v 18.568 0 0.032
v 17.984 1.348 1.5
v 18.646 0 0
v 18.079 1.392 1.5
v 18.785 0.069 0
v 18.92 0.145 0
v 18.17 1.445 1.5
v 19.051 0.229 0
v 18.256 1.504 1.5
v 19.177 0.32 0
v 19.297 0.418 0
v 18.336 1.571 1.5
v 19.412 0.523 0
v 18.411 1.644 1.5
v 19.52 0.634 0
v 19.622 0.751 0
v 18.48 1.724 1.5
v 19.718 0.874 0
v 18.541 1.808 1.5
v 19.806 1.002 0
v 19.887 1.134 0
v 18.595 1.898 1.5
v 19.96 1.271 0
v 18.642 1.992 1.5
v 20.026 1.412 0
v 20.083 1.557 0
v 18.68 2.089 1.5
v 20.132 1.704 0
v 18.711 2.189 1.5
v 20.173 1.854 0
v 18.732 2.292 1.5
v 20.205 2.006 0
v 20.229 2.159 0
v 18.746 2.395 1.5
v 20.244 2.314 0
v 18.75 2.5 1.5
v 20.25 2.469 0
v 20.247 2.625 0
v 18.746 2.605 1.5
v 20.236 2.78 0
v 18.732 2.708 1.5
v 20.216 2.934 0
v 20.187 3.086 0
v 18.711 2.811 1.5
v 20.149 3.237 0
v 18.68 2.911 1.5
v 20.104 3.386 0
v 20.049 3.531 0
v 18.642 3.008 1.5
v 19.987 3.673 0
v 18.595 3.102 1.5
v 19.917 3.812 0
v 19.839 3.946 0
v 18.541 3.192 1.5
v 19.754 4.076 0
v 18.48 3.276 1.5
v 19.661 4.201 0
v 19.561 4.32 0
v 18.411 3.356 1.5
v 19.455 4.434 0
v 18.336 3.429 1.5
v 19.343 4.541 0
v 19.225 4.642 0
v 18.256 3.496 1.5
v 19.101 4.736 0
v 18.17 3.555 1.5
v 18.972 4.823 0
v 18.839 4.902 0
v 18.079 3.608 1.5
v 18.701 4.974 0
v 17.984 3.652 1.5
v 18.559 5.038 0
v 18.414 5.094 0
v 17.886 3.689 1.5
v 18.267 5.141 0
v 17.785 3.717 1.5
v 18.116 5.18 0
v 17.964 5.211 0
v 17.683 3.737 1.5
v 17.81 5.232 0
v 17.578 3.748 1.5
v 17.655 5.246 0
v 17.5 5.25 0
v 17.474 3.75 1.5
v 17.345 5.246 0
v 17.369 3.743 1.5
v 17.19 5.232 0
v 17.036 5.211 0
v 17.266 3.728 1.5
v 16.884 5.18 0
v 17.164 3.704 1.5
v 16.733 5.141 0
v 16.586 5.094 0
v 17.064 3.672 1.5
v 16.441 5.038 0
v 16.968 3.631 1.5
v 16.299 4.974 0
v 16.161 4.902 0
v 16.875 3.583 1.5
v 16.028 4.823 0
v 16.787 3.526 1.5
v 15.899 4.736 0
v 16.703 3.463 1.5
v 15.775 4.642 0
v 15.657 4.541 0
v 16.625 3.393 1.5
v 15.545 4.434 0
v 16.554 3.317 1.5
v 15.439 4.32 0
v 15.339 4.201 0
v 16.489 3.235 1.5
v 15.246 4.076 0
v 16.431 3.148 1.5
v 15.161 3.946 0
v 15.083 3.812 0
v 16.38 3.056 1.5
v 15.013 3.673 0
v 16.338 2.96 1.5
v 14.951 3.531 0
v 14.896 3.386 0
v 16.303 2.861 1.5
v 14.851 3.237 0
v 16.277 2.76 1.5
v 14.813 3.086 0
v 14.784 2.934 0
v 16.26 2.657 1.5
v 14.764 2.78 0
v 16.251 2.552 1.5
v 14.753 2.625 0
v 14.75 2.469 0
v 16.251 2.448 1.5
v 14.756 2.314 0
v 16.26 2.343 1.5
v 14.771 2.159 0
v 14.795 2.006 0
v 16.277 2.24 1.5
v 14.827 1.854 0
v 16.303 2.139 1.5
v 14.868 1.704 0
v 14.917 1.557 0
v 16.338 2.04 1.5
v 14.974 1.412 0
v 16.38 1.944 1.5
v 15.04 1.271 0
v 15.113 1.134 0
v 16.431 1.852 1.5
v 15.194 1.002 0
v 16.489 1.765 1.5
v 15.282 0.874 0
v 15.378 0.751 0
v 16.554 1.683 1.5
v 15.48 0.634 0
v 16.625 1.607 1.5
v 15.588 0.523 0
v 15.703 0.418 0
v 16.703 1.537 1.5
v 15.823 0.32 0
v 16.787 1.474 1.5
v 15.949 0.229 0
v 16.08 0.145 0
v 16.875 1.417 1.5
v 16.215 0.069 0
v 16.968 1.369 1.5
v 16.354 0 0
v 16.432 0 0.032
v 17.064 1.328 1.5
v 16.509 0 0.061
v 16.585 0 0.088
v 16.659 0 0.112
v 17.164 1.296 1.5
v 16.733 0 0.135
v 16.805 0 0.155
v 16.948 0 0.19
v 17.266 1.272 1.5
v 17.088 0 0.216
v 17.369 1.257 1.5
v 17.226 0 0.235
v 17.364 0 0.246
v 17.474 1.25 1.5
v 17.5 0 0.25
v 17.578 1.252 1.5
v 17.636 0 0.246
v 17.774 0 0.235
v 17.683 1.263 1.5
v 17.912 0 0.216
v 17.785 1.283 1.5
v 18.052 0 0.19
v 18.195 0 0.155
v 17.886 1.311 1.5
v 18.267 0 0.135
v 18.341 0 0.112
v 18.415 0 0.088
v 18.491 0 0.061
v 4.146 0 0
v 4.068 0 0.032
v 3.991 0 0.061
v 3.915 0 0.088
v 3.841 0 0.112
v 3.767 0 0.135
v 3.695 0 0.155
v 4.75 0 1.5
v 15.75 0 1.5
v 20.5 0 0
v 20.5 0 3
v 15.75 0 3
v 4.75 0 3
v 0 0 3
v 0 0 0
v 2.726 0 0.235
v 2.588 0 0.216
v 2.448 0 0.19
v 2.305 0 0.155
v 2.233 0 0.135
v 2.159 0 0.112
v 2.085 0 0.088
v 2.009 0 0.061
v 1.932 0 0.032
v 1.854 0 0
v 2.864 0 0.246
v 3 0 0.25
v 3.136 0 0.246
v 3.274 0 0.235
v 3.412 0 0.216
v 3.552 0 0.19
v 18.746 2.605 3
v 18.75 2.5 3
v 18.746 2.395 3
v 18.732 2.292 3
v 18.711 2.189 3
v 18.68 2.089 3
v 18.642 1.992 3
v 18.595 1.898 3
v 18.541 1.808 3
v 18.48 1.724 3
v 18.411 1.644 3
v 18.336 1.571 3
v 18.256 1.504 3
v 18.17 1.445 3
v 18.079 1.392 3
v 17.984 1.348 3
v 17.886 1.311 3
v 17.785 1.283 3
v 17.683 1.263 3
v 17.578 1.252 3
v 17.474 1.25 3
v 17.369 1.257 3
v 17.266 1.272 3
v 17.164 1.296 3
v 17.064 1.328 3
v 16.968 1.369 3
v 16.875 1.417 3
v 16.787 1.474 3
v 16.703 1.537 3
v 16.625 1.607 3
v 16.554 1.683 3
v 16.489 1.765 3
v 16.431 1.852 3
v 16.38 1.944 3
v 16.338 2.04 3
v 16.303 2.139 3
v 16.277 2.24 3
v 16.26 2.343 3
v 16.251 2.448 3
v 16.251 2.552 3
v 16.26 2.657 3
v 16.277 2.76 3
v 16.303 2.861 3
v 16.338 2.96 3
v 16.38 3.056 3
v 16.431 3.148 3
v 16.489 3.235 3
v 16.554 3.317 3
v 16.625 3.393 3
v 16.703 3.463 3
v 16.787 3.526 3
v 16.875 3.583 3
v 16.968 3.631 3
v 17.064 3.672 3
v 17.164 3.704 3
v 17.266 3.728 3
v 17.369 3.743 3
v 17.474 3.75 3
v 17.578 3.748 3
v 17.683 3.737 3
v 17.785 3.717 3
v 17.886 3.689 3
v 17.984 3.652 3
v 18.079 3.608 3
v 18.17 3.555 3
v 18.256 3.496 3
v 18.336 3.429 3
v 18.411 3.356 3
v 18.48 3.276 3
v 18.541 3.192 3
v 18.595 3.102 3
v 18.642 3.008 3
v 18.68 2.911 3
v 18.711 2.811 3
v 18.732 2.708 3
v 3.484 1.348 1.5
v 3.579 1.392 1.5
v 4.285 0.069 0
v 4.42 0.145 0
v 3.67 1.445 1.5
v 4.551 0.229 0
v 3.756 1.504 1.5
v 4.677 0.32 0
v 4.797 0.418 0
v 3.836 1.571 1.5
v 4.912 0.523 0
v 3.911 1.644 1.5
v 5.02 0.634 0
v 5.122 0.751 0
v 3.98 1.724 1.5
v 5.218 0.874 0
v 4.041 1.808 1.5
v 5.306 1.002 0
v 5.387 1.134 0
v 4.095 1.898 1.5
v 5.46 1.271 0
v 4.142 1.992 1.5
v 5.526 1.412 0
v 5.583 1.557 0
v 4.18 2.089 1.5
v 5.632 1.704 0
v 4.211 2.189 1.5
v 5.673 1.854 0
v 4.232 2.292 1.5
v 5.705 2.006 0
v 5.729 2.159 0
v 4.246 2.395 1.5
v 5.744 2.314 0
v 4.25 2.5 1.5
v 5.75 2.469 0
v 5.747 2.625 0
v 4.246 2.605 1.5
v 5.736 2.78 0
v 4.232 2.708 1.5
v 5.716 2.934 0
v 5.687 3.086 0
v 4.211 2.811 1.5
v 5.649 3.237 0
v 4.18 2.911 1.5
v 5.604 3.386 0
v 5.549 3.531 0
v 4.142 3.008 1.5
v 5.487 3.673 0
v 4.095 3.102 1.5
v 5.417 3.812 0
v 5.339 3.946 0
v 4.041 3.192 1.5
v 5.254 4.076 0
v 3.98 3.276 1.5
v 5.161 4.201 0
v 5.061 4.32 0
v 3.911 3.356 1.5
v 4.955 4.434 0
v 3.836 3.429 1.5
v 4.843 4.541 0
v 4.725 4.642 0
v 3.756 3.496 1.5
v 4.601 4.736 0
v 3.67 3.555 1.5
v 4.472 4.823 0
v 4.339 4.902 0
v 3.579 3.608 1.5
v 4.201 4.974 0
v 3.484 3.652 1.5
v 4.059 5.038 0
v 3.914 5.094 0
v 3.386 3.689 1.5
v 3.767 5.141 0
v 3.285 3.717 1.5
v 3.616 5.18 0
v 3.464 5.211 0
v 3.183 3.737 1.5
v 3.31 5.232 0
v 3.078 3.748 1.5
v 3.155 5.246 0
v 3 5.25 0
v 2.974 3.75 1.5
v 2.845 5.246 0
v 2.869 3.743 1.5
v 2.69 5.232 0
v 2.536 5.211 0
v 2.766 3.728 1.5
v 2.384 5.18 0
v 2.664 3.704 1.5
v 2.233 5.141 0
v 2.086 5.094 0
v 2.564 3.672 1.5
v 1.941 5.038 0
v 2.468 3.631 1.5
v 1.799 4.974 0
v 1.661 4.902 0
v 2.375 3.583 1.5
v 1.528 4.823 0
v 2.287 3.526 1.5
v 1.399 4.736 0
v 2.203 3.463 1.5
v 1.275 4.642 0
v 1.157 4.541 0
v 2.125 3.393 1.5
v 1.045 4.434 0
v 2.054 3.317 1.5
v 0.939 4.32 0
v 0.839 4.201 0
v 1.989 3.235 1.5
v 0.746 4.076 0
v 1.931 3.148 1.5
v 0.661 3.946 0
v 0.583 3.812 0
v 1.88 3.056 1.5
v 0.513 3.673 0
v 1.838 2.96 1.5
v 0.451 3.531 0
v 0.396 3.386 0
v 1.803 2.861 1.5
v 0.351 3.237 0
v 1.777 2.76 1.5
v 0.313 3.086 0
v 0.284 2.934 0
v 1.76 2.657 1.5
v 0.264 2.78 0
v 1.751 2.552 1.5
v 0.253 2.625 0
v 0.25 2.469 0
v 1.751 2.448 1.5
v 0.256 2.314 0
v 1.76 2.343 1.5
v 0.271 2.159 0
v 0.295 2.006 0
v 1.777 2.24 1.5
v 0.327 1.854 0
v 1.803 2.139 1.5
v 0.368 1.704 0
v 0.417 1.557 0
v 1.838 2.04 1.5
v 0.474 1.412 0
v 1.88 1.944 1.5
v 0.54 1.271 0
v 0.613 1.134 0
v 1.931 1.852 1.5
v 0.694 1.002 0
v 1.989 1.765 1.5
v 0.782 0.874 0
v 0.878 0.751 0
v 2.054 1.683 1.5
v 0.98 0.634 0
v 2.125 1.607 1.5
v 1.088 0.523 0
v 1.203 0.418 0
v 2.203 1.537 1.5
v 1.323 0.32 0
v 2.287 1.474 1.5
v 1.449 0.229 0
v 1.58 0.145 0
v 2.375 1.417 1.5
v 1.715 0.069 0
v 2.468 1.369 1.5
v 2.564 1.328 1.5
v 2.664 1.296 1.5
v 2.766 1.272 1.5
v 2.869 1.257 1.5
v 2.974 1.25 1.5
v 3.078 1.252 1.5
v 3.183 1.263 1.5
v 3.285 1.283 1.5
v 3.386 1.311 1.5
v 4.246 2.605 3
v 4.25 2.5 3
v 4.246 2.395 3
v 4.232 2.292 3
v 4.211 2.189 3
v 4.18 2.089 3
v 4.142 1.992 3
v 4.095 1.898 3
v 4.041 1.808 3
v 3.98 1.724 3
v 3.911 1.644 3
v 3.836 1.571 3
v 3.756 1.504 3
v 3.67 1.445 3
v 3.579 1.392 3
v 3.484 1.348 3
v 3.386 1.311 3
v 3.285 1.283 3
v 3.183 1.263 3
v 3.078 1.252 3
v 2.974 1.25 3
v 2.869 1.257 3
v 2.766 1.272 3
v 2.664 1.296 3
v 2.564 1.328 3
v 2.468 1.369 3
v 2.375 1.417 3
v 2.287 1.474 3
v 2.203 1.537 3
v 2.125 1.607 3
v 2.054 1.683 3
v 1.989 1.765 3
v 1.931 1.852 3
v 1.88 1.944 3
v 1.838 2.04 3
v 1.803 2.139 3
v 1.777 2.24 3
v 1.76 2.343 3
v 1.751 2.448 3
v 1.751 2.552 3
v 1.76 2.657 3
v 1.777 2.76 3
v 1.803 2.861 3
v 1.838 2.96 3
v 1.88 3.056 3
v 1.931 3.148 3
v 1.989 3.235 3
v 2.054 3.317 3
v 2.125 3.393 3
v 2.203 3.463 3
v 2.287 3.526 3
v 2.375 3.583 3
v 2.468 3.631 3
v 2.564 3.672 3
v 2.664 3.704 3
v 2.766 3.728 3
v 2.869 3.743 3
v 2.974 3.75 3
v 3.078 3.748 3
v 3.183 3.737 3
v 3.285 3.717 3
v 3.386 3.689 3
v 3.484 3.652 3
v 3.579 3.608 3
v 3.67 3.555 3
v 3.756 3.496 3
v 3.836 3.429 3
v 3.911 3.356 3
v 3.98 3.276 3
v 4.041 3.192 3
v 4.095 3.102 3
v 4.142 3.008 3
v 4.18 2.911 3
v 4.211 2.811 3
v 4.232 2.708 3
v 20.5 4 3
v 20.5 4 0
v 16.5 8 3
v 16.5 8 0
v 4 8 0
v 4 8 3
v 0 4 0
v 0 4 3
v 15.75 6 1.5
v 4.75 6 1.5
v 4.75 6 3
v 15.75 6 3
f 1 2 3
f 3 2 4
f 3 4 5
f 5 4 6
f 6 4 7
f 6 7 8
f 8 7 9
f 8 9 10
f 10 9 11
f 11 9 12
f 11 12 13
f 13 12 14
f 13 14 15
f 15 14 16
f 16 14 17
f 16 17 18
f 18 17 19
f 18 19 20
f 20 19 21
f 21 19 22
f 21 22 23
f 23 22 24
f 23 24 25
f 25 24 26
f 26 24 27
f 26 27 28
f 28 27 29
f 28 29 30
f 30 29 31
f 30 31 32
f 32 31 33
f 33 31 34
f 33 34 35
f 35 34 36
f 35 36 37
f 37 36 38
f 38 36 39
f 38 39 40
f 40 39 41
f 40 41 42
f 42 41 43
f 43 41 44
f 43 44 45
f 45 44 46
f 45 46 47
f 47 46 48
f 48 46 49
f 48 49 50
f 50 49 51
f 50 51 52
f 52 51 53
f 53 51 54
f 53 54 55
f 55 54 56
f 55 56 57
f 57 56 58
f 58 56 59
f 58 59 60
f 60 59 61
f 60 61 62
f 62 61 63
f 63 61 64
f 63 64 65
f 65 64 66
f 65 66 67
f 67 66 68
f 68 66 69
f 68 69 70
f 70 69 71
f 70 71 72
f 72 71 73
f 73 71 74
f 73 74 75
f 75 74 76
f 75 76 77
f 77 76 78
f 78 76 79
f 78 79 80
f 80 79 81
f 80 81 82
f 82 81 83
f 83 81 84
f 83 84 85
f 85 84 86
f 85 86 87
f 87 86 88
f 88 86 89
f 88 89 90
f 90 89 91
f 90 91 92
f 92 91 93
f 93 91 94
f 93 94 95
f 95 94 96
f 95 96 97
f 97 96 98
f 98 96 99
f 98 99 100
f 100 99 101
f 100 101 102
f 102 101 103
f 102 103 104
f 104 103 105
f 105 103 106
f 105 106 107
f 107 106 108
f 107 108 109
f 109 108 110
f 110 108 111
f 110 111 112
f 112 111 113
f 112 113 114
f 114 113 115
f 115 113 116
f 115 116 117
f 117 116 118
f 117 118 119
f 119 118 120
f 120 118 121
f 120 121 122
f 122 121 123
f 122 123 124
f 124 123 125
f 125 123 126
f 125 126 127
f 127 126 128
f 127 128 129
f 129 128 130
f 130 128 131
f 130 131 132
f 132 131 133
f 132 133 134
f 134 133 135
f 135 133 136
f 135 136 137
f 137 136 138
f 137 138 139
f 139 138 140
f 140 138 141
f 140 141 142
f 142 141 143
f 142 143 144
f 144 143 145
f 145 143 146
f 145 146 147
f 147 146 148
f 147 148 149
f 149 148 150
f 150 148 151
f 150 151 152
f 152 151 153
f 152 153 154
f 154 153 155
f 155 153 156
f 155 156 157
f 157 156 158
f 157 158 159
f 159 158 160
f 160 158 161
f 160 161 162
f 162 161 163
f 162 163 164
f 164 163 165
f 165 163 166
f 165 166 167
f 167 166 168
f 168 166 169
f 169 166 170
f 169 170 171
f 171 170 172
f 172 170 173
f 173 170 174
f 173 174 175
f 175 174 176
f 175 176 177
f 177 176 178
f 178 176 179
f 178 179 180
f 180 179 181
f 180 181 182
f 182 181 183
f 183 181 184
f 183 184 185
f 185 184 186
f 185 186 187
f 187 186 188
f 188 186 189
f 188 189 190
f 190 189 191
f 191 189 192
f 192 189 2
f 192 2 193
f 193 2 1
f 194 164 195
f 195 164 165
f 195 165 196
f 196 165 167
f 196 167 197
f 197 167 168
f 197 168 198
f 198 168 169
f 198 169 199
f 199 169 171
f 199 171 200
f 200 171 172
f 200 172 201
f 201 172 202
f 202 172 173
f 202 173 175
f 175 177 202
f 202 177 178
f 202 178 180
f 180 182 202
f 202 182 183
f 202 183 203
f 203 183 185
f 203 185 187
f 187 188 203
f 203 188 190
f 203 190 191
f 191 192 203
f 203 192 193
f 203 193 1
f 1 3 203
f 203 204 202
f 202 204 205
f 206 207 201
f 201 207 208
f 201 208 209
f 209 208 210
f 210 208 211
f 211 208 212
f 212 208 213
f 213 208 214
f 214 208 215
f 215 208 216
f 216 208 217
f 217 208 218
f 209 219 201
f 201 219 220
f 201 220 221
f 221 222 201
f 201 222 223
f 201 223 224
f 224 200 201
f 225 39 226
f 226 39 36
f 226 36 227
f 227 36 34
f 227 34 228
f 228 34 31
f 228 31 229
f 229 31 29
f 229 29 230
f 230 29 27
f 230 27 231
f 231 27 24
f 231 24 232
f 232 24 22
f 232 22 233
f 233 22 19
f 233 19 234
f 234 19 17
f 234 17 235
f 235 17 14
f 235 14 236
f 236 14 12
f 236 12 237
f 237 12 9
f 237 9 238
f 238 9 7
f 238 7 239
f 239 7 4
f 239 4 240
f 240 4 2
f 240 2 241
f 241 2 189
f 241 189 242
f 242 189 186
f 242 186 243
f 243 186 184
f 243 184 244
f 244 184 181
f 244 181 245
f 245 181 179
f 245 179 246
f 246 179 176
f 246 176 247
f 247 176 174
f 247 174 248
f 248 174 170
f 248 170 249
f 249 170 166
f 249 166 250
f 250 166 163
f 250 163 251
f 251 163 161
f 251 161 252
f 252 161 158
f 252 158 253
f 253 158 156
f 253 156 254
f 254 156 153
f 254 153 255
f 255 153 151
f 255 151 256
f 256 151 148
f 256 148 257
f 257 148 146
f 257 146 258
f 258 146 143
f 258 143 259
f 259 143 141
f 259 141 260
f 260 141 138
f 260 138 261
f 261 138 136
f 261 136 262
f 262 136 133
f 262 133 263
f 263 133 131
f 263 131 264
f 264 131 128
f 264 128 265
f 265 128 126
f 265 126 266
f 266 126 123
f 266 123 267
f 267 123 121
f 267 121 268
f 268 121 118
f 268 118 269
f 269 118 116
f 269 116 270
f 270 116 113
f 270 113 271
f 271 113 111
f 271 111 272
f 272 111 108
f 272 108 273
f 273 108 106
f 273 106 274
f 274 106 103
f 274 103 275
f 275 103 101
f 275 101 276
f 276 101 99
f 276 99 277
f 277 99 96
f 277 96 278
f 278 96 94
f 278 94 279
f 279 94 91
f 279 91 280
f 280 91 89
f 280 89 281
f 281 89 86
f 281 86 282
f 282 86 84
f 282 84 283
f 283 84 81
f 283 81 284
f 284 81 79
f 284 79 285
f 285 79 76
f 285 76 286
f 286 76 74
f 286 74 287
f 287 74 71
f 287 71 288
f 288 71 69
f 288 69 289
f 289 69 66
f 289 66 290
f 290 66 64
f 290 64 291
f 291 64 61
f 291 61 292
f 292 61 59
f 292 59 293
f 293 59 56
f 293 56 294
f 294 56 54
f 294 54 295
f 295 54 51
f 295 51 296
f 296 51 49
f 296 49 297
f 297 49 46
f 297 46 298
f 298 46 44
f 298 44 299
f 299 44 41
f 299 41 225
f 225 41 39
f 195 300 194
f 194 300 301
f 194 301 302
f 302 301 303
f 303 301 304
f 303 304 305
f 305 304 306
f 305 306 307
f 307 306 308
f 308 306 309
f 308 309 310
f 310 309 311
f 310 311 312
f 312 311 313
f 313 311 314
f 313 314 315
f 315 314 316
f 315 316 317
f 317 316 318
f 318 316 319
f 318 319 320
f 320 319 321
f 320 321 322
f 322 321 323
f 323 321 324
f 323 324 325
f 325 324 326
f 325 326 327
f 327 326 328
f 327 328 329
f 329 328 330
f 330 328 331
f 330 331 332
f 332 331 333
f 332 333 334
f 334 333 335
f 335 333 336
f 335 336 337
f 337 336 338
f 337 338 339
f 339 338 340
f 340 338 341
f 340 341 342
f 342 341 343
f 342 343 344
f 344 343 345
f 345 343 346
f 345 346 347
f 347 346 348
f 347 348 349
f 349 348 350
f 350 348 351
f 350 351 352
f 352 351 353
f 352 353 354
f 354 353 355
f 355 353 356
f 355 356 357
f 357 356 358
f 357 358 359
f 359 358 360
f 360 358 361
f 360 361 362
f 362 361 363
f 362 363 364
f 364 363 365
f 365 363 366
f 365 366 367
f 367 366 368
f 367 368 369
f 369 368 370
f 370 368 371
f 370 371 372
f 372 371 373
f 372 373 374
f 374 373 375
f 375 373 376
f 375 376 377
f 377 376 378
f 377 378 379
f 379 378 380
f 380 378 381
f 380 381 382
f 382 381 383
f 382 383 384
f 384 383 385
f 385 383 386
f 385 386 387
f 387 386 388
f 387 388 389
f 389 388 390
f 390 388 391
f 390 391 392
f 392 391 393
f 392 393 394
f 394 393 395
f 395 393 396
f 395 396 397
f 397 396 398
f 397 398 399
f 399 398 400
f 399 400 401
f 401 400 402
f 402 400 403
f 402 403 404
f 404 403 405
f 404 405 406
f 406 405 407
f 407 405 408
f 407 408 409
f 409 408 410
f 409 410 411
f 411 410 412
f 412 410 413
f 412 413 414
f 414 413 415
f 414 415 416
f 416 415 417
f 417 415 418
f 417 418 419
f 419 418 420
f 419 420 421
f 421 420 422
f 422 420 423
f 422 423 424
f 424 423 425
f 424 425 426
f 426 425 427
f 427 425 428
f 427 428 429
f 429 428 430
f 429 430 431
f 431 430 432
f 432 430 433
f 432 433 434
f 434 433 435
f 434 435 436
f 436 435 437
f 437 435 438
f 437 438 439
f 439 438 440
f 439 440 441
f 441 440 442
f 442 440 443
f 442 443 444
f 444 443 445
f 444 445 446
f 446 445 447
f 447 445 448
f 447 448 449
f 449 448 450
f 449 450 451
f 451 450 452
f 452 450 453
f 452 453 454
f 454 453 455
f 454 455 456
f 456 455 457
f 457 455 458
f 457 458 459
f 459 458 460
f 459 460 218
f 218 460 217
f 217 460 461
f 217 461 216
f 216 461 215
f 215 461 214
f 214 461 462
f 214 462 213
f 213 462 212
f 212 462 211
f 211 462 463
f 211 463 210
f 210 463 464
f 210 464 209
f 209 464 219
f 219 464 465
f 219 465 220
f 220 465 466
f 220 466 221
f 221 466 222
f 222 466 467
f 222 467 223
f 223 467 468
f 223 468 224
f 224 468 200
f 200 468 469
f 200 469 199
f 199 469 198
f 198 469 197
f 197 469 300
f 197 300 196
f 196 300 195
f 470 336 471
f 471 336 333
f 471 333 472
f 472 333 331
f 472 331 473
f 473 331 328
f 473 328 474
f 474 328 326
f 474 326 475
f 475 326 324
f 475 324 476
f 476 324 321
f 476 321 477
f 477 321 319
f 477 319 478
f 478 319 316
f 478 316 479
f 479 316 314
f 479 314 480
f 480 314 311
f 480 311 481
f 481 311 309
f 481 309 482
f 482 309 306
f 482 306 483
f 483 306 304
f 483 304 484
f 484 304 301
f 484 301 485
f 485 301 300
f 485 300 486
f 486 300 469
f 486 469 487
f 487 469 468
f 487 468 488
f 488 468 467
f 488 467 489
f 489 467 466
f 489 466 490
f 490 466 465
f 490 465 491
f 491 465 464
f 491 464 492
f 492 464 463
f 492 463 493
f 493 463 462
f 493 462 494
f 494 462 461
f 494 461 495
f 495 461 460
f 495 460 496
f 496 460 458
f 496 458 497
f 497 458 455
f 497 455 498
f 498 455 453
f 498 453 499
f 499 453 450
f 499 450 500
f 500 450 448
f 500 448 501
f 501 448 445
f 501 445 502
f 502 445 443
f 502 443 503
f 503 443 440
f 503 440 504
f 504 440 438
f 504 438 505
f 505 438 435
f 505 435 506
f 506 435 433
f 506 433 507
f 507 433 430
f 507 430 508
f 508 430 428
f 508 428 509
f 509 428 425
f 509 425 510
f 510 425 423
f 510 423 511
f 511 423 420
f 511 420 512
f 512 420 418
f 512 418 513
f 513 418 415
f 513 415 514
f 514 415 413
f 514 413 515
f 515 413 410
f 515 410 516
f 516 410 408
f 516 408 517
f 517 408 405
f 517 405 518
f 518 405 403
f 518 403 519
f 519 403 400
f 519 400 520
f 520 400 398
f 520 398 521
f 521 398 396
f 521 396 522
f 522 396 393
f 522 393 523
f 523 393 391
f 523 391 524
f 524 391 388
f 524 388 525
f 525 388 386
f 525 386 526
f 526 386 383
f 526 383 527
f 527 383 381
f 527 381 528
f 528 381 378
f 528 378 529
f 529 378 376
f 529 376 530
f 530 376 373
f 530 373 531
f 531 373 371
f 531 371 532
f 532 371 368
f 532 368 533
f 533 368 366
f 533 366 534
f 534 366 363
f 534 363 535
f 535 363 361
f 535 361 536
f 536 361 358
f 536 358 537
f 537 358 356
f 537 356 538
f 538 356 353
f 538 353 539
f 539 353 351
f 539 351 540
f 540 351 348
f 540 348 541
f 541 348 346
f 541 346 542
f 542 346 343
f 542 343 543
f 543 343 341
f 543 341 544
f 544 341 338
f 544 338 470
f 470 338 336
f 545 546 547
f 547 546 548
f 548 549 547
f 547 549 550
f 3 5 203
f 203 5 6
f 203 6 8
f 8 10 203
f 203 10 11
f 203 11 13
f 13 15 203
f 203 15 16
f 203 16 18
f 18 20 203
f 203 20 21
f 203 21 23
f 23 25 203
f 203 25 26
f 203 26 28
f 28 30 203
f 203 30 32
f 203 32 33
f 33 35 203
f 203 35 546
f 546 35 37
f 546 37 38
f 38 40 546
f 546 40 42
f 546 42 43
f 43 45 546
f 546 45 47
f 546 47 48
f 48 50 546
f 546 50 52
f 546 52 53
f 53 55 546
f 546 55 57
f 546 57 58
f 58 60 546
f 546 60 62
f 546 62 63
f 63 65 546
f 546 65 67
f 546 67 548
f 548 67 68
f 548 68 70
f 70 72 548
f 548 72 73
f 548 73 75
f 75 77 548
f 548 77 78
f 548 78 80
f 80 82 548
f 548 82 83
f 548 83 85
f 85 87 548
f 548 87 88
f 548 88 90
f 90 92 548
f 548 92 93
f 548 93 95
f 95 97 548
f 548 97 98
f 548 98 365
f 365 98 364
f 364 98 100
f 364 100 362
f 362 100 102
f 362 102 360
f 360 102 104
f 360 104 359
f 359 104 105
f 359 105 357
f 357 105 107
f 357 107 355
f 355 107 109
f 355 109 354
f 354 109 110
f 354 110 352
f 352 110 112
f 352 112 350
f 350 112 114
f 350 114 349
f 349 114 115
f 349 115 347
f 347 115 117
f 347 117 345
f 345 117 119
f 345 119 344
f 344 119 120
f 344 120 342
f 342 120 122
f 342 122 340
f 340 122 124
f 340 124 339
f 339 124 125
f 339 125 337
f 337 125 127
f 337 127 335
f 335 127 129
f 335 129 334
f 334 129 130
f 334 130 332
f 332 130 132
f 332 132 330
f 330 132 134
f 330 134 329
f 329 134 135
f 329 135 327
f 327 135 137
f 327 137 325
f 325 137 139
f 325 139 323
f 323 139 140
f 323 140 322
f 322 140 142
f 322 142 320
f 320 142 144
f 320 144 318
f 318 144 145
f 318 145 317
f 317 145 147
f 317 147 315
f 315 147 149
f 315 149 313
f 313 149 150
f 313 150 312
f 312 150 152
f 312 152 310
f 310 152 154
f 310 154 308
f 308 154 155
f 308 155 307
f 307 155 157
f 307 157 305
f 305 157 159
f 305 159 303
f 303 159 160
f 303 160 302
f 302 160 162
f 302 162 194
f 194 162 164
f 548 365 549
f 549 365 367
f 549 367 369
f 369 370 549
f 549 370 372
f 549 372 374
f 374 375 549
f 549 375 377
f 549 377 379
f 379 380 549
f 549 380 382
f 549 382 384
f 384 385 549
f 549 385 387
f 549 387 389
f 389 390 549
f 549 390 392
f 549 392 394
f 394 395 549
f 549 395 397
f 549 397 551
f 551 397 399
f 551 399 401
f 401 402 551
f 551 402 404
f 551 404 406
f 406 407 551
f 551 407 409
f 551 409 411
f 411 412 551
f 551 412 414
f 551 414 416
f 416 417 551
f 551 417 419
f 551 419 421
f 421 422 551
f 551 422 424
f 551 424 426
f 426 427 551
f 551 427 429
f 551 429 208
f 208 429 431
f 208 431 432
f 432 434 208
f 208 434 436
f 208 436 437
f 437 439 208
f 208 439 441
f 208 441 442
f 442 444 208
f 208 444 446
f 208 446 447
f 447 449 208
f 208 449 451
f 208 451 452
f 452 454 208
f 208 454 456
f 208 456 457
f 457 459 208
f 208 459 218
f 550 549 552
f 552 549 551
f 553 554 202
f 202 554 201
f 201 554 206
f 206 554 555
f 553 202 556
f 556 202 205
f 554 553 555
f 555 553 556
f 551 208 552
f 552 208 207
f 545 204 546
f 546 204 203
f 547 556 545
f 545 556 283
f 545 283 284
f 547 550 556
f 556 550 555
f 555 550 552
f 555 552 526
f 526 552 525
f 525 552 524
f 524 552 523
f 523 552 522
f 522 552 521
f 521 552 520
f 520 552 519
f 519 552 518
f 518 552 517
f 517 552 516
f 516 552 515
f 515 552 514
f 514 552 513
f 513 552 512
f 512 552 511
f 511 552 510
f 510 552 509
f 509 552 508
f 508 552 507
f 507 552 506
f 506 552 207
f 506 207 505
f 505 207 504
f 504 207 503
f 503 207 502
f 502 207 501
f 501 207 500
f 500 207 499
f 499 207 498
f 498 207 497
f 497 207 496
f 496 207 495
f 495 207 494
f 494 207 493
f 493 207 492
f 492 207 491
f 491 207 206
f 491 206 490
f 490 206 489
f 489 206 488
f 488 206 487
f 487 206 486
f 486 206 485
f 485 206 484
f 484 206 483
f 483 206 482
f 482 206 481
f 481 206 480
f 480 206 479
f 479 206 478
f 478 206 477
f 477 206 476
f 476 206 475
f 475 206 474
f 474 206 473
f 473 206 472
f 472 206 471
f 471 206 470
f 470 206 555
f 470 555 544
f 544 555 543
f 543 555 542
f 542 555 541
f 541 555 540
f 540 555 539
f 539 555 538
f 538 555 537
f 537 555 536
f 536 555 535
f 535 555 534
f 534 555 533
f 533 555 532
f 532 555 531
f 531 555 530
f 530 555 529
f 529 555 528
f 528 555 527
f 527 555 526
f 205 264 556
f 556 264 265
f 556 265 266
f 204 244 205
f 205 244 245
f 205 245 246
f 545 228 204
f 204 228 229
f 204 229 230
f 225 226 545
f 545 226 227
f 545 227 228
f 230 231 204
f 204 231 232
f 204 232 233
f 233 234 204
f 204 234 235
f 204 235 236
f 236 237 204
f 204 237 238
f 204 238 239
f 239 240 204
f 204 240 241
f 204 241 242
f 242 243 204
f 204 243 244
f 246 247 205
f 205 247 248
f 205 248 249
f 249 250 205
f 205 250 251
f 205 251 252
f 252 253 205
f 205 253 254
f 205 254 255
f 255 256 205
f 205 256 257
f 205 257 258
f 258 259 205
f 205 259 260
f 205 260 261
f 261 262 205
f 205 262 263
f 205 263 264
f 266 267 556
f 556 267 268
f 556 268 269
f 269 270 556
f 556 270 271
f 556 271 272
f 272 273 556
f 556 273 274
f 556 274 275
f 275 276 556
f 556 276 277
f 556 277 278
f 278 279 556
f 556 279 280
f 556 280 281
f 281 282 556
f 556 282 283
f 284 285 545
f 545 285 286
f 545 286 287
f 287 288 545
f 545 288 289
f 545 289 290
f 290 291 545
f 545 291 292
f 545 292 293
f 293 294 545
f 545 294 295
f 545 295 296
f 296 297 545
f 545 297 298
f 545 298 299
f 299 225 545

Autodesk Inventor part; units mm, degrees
ref_plane "YZ Plane" through (0, 0, 0) normal (1, 0, 0) x (0, 1, 0)
ref_plane "XZ Plane" through (0, 0, 0) normal (0, 1, 0) x (-1, 0, 0)
ref_plane "XY Plane" through (0, 0, 0) normal (0, 0, 1) x (1, 0, 0)
sketch "Sketch1" plane through (0, 0, 0) normal (0, 0, 1) x (1, 0, 0)
  line L0 (20.5, 0) -> (20.5, 8)
  line L1 (20.5, 8) -> (0, 8)
  line L2 (0, 8) -> (0, 0)
  circle A0 centre (3, 2.5) radius 1.25
  circle A1 centre (17.5, 2.5) radius 1.25
  line L3 (4.75, 0) -> (15.75, 0)
  line L4 (15.75, 0) -> (15.75, 6)
  line L5 (15.75, 6) -> (4.75, 6)
  line L6 (4.75, 6) -> (4.75, 0)
  line L7 (0, 0) -> (4.75, 0)
  line L8 (15.75, 0) -> (20.5, 0)
  dimension "d0" = 2.5
  dimension "d1" = 2.5
  dimension "d2" = 14.5
  dimension "d7" = 3
  dimension "d8" = 3
  dimension "d9" = 11
extrude "Extrusion1" add sketch "Sketch1" along normal blind 3 contours L8 L4 L5 L6 L7 L2 L1 L0
extrude "Extrusion2" add sketch "Sketch1" along normal blind 1.5 contours L3 L6 L5 L4
chamfer "Chamfer1" distance 4 angle 45 2 edges at (0, 8, 1.5) (20.5, 8, 1.5)
chamfer "Chamfer2" distance 1.5 angle 45 2 edges at (1.75, 2.5, 0) (16.25, 2.5, 0)
properties part number "switchholder"
